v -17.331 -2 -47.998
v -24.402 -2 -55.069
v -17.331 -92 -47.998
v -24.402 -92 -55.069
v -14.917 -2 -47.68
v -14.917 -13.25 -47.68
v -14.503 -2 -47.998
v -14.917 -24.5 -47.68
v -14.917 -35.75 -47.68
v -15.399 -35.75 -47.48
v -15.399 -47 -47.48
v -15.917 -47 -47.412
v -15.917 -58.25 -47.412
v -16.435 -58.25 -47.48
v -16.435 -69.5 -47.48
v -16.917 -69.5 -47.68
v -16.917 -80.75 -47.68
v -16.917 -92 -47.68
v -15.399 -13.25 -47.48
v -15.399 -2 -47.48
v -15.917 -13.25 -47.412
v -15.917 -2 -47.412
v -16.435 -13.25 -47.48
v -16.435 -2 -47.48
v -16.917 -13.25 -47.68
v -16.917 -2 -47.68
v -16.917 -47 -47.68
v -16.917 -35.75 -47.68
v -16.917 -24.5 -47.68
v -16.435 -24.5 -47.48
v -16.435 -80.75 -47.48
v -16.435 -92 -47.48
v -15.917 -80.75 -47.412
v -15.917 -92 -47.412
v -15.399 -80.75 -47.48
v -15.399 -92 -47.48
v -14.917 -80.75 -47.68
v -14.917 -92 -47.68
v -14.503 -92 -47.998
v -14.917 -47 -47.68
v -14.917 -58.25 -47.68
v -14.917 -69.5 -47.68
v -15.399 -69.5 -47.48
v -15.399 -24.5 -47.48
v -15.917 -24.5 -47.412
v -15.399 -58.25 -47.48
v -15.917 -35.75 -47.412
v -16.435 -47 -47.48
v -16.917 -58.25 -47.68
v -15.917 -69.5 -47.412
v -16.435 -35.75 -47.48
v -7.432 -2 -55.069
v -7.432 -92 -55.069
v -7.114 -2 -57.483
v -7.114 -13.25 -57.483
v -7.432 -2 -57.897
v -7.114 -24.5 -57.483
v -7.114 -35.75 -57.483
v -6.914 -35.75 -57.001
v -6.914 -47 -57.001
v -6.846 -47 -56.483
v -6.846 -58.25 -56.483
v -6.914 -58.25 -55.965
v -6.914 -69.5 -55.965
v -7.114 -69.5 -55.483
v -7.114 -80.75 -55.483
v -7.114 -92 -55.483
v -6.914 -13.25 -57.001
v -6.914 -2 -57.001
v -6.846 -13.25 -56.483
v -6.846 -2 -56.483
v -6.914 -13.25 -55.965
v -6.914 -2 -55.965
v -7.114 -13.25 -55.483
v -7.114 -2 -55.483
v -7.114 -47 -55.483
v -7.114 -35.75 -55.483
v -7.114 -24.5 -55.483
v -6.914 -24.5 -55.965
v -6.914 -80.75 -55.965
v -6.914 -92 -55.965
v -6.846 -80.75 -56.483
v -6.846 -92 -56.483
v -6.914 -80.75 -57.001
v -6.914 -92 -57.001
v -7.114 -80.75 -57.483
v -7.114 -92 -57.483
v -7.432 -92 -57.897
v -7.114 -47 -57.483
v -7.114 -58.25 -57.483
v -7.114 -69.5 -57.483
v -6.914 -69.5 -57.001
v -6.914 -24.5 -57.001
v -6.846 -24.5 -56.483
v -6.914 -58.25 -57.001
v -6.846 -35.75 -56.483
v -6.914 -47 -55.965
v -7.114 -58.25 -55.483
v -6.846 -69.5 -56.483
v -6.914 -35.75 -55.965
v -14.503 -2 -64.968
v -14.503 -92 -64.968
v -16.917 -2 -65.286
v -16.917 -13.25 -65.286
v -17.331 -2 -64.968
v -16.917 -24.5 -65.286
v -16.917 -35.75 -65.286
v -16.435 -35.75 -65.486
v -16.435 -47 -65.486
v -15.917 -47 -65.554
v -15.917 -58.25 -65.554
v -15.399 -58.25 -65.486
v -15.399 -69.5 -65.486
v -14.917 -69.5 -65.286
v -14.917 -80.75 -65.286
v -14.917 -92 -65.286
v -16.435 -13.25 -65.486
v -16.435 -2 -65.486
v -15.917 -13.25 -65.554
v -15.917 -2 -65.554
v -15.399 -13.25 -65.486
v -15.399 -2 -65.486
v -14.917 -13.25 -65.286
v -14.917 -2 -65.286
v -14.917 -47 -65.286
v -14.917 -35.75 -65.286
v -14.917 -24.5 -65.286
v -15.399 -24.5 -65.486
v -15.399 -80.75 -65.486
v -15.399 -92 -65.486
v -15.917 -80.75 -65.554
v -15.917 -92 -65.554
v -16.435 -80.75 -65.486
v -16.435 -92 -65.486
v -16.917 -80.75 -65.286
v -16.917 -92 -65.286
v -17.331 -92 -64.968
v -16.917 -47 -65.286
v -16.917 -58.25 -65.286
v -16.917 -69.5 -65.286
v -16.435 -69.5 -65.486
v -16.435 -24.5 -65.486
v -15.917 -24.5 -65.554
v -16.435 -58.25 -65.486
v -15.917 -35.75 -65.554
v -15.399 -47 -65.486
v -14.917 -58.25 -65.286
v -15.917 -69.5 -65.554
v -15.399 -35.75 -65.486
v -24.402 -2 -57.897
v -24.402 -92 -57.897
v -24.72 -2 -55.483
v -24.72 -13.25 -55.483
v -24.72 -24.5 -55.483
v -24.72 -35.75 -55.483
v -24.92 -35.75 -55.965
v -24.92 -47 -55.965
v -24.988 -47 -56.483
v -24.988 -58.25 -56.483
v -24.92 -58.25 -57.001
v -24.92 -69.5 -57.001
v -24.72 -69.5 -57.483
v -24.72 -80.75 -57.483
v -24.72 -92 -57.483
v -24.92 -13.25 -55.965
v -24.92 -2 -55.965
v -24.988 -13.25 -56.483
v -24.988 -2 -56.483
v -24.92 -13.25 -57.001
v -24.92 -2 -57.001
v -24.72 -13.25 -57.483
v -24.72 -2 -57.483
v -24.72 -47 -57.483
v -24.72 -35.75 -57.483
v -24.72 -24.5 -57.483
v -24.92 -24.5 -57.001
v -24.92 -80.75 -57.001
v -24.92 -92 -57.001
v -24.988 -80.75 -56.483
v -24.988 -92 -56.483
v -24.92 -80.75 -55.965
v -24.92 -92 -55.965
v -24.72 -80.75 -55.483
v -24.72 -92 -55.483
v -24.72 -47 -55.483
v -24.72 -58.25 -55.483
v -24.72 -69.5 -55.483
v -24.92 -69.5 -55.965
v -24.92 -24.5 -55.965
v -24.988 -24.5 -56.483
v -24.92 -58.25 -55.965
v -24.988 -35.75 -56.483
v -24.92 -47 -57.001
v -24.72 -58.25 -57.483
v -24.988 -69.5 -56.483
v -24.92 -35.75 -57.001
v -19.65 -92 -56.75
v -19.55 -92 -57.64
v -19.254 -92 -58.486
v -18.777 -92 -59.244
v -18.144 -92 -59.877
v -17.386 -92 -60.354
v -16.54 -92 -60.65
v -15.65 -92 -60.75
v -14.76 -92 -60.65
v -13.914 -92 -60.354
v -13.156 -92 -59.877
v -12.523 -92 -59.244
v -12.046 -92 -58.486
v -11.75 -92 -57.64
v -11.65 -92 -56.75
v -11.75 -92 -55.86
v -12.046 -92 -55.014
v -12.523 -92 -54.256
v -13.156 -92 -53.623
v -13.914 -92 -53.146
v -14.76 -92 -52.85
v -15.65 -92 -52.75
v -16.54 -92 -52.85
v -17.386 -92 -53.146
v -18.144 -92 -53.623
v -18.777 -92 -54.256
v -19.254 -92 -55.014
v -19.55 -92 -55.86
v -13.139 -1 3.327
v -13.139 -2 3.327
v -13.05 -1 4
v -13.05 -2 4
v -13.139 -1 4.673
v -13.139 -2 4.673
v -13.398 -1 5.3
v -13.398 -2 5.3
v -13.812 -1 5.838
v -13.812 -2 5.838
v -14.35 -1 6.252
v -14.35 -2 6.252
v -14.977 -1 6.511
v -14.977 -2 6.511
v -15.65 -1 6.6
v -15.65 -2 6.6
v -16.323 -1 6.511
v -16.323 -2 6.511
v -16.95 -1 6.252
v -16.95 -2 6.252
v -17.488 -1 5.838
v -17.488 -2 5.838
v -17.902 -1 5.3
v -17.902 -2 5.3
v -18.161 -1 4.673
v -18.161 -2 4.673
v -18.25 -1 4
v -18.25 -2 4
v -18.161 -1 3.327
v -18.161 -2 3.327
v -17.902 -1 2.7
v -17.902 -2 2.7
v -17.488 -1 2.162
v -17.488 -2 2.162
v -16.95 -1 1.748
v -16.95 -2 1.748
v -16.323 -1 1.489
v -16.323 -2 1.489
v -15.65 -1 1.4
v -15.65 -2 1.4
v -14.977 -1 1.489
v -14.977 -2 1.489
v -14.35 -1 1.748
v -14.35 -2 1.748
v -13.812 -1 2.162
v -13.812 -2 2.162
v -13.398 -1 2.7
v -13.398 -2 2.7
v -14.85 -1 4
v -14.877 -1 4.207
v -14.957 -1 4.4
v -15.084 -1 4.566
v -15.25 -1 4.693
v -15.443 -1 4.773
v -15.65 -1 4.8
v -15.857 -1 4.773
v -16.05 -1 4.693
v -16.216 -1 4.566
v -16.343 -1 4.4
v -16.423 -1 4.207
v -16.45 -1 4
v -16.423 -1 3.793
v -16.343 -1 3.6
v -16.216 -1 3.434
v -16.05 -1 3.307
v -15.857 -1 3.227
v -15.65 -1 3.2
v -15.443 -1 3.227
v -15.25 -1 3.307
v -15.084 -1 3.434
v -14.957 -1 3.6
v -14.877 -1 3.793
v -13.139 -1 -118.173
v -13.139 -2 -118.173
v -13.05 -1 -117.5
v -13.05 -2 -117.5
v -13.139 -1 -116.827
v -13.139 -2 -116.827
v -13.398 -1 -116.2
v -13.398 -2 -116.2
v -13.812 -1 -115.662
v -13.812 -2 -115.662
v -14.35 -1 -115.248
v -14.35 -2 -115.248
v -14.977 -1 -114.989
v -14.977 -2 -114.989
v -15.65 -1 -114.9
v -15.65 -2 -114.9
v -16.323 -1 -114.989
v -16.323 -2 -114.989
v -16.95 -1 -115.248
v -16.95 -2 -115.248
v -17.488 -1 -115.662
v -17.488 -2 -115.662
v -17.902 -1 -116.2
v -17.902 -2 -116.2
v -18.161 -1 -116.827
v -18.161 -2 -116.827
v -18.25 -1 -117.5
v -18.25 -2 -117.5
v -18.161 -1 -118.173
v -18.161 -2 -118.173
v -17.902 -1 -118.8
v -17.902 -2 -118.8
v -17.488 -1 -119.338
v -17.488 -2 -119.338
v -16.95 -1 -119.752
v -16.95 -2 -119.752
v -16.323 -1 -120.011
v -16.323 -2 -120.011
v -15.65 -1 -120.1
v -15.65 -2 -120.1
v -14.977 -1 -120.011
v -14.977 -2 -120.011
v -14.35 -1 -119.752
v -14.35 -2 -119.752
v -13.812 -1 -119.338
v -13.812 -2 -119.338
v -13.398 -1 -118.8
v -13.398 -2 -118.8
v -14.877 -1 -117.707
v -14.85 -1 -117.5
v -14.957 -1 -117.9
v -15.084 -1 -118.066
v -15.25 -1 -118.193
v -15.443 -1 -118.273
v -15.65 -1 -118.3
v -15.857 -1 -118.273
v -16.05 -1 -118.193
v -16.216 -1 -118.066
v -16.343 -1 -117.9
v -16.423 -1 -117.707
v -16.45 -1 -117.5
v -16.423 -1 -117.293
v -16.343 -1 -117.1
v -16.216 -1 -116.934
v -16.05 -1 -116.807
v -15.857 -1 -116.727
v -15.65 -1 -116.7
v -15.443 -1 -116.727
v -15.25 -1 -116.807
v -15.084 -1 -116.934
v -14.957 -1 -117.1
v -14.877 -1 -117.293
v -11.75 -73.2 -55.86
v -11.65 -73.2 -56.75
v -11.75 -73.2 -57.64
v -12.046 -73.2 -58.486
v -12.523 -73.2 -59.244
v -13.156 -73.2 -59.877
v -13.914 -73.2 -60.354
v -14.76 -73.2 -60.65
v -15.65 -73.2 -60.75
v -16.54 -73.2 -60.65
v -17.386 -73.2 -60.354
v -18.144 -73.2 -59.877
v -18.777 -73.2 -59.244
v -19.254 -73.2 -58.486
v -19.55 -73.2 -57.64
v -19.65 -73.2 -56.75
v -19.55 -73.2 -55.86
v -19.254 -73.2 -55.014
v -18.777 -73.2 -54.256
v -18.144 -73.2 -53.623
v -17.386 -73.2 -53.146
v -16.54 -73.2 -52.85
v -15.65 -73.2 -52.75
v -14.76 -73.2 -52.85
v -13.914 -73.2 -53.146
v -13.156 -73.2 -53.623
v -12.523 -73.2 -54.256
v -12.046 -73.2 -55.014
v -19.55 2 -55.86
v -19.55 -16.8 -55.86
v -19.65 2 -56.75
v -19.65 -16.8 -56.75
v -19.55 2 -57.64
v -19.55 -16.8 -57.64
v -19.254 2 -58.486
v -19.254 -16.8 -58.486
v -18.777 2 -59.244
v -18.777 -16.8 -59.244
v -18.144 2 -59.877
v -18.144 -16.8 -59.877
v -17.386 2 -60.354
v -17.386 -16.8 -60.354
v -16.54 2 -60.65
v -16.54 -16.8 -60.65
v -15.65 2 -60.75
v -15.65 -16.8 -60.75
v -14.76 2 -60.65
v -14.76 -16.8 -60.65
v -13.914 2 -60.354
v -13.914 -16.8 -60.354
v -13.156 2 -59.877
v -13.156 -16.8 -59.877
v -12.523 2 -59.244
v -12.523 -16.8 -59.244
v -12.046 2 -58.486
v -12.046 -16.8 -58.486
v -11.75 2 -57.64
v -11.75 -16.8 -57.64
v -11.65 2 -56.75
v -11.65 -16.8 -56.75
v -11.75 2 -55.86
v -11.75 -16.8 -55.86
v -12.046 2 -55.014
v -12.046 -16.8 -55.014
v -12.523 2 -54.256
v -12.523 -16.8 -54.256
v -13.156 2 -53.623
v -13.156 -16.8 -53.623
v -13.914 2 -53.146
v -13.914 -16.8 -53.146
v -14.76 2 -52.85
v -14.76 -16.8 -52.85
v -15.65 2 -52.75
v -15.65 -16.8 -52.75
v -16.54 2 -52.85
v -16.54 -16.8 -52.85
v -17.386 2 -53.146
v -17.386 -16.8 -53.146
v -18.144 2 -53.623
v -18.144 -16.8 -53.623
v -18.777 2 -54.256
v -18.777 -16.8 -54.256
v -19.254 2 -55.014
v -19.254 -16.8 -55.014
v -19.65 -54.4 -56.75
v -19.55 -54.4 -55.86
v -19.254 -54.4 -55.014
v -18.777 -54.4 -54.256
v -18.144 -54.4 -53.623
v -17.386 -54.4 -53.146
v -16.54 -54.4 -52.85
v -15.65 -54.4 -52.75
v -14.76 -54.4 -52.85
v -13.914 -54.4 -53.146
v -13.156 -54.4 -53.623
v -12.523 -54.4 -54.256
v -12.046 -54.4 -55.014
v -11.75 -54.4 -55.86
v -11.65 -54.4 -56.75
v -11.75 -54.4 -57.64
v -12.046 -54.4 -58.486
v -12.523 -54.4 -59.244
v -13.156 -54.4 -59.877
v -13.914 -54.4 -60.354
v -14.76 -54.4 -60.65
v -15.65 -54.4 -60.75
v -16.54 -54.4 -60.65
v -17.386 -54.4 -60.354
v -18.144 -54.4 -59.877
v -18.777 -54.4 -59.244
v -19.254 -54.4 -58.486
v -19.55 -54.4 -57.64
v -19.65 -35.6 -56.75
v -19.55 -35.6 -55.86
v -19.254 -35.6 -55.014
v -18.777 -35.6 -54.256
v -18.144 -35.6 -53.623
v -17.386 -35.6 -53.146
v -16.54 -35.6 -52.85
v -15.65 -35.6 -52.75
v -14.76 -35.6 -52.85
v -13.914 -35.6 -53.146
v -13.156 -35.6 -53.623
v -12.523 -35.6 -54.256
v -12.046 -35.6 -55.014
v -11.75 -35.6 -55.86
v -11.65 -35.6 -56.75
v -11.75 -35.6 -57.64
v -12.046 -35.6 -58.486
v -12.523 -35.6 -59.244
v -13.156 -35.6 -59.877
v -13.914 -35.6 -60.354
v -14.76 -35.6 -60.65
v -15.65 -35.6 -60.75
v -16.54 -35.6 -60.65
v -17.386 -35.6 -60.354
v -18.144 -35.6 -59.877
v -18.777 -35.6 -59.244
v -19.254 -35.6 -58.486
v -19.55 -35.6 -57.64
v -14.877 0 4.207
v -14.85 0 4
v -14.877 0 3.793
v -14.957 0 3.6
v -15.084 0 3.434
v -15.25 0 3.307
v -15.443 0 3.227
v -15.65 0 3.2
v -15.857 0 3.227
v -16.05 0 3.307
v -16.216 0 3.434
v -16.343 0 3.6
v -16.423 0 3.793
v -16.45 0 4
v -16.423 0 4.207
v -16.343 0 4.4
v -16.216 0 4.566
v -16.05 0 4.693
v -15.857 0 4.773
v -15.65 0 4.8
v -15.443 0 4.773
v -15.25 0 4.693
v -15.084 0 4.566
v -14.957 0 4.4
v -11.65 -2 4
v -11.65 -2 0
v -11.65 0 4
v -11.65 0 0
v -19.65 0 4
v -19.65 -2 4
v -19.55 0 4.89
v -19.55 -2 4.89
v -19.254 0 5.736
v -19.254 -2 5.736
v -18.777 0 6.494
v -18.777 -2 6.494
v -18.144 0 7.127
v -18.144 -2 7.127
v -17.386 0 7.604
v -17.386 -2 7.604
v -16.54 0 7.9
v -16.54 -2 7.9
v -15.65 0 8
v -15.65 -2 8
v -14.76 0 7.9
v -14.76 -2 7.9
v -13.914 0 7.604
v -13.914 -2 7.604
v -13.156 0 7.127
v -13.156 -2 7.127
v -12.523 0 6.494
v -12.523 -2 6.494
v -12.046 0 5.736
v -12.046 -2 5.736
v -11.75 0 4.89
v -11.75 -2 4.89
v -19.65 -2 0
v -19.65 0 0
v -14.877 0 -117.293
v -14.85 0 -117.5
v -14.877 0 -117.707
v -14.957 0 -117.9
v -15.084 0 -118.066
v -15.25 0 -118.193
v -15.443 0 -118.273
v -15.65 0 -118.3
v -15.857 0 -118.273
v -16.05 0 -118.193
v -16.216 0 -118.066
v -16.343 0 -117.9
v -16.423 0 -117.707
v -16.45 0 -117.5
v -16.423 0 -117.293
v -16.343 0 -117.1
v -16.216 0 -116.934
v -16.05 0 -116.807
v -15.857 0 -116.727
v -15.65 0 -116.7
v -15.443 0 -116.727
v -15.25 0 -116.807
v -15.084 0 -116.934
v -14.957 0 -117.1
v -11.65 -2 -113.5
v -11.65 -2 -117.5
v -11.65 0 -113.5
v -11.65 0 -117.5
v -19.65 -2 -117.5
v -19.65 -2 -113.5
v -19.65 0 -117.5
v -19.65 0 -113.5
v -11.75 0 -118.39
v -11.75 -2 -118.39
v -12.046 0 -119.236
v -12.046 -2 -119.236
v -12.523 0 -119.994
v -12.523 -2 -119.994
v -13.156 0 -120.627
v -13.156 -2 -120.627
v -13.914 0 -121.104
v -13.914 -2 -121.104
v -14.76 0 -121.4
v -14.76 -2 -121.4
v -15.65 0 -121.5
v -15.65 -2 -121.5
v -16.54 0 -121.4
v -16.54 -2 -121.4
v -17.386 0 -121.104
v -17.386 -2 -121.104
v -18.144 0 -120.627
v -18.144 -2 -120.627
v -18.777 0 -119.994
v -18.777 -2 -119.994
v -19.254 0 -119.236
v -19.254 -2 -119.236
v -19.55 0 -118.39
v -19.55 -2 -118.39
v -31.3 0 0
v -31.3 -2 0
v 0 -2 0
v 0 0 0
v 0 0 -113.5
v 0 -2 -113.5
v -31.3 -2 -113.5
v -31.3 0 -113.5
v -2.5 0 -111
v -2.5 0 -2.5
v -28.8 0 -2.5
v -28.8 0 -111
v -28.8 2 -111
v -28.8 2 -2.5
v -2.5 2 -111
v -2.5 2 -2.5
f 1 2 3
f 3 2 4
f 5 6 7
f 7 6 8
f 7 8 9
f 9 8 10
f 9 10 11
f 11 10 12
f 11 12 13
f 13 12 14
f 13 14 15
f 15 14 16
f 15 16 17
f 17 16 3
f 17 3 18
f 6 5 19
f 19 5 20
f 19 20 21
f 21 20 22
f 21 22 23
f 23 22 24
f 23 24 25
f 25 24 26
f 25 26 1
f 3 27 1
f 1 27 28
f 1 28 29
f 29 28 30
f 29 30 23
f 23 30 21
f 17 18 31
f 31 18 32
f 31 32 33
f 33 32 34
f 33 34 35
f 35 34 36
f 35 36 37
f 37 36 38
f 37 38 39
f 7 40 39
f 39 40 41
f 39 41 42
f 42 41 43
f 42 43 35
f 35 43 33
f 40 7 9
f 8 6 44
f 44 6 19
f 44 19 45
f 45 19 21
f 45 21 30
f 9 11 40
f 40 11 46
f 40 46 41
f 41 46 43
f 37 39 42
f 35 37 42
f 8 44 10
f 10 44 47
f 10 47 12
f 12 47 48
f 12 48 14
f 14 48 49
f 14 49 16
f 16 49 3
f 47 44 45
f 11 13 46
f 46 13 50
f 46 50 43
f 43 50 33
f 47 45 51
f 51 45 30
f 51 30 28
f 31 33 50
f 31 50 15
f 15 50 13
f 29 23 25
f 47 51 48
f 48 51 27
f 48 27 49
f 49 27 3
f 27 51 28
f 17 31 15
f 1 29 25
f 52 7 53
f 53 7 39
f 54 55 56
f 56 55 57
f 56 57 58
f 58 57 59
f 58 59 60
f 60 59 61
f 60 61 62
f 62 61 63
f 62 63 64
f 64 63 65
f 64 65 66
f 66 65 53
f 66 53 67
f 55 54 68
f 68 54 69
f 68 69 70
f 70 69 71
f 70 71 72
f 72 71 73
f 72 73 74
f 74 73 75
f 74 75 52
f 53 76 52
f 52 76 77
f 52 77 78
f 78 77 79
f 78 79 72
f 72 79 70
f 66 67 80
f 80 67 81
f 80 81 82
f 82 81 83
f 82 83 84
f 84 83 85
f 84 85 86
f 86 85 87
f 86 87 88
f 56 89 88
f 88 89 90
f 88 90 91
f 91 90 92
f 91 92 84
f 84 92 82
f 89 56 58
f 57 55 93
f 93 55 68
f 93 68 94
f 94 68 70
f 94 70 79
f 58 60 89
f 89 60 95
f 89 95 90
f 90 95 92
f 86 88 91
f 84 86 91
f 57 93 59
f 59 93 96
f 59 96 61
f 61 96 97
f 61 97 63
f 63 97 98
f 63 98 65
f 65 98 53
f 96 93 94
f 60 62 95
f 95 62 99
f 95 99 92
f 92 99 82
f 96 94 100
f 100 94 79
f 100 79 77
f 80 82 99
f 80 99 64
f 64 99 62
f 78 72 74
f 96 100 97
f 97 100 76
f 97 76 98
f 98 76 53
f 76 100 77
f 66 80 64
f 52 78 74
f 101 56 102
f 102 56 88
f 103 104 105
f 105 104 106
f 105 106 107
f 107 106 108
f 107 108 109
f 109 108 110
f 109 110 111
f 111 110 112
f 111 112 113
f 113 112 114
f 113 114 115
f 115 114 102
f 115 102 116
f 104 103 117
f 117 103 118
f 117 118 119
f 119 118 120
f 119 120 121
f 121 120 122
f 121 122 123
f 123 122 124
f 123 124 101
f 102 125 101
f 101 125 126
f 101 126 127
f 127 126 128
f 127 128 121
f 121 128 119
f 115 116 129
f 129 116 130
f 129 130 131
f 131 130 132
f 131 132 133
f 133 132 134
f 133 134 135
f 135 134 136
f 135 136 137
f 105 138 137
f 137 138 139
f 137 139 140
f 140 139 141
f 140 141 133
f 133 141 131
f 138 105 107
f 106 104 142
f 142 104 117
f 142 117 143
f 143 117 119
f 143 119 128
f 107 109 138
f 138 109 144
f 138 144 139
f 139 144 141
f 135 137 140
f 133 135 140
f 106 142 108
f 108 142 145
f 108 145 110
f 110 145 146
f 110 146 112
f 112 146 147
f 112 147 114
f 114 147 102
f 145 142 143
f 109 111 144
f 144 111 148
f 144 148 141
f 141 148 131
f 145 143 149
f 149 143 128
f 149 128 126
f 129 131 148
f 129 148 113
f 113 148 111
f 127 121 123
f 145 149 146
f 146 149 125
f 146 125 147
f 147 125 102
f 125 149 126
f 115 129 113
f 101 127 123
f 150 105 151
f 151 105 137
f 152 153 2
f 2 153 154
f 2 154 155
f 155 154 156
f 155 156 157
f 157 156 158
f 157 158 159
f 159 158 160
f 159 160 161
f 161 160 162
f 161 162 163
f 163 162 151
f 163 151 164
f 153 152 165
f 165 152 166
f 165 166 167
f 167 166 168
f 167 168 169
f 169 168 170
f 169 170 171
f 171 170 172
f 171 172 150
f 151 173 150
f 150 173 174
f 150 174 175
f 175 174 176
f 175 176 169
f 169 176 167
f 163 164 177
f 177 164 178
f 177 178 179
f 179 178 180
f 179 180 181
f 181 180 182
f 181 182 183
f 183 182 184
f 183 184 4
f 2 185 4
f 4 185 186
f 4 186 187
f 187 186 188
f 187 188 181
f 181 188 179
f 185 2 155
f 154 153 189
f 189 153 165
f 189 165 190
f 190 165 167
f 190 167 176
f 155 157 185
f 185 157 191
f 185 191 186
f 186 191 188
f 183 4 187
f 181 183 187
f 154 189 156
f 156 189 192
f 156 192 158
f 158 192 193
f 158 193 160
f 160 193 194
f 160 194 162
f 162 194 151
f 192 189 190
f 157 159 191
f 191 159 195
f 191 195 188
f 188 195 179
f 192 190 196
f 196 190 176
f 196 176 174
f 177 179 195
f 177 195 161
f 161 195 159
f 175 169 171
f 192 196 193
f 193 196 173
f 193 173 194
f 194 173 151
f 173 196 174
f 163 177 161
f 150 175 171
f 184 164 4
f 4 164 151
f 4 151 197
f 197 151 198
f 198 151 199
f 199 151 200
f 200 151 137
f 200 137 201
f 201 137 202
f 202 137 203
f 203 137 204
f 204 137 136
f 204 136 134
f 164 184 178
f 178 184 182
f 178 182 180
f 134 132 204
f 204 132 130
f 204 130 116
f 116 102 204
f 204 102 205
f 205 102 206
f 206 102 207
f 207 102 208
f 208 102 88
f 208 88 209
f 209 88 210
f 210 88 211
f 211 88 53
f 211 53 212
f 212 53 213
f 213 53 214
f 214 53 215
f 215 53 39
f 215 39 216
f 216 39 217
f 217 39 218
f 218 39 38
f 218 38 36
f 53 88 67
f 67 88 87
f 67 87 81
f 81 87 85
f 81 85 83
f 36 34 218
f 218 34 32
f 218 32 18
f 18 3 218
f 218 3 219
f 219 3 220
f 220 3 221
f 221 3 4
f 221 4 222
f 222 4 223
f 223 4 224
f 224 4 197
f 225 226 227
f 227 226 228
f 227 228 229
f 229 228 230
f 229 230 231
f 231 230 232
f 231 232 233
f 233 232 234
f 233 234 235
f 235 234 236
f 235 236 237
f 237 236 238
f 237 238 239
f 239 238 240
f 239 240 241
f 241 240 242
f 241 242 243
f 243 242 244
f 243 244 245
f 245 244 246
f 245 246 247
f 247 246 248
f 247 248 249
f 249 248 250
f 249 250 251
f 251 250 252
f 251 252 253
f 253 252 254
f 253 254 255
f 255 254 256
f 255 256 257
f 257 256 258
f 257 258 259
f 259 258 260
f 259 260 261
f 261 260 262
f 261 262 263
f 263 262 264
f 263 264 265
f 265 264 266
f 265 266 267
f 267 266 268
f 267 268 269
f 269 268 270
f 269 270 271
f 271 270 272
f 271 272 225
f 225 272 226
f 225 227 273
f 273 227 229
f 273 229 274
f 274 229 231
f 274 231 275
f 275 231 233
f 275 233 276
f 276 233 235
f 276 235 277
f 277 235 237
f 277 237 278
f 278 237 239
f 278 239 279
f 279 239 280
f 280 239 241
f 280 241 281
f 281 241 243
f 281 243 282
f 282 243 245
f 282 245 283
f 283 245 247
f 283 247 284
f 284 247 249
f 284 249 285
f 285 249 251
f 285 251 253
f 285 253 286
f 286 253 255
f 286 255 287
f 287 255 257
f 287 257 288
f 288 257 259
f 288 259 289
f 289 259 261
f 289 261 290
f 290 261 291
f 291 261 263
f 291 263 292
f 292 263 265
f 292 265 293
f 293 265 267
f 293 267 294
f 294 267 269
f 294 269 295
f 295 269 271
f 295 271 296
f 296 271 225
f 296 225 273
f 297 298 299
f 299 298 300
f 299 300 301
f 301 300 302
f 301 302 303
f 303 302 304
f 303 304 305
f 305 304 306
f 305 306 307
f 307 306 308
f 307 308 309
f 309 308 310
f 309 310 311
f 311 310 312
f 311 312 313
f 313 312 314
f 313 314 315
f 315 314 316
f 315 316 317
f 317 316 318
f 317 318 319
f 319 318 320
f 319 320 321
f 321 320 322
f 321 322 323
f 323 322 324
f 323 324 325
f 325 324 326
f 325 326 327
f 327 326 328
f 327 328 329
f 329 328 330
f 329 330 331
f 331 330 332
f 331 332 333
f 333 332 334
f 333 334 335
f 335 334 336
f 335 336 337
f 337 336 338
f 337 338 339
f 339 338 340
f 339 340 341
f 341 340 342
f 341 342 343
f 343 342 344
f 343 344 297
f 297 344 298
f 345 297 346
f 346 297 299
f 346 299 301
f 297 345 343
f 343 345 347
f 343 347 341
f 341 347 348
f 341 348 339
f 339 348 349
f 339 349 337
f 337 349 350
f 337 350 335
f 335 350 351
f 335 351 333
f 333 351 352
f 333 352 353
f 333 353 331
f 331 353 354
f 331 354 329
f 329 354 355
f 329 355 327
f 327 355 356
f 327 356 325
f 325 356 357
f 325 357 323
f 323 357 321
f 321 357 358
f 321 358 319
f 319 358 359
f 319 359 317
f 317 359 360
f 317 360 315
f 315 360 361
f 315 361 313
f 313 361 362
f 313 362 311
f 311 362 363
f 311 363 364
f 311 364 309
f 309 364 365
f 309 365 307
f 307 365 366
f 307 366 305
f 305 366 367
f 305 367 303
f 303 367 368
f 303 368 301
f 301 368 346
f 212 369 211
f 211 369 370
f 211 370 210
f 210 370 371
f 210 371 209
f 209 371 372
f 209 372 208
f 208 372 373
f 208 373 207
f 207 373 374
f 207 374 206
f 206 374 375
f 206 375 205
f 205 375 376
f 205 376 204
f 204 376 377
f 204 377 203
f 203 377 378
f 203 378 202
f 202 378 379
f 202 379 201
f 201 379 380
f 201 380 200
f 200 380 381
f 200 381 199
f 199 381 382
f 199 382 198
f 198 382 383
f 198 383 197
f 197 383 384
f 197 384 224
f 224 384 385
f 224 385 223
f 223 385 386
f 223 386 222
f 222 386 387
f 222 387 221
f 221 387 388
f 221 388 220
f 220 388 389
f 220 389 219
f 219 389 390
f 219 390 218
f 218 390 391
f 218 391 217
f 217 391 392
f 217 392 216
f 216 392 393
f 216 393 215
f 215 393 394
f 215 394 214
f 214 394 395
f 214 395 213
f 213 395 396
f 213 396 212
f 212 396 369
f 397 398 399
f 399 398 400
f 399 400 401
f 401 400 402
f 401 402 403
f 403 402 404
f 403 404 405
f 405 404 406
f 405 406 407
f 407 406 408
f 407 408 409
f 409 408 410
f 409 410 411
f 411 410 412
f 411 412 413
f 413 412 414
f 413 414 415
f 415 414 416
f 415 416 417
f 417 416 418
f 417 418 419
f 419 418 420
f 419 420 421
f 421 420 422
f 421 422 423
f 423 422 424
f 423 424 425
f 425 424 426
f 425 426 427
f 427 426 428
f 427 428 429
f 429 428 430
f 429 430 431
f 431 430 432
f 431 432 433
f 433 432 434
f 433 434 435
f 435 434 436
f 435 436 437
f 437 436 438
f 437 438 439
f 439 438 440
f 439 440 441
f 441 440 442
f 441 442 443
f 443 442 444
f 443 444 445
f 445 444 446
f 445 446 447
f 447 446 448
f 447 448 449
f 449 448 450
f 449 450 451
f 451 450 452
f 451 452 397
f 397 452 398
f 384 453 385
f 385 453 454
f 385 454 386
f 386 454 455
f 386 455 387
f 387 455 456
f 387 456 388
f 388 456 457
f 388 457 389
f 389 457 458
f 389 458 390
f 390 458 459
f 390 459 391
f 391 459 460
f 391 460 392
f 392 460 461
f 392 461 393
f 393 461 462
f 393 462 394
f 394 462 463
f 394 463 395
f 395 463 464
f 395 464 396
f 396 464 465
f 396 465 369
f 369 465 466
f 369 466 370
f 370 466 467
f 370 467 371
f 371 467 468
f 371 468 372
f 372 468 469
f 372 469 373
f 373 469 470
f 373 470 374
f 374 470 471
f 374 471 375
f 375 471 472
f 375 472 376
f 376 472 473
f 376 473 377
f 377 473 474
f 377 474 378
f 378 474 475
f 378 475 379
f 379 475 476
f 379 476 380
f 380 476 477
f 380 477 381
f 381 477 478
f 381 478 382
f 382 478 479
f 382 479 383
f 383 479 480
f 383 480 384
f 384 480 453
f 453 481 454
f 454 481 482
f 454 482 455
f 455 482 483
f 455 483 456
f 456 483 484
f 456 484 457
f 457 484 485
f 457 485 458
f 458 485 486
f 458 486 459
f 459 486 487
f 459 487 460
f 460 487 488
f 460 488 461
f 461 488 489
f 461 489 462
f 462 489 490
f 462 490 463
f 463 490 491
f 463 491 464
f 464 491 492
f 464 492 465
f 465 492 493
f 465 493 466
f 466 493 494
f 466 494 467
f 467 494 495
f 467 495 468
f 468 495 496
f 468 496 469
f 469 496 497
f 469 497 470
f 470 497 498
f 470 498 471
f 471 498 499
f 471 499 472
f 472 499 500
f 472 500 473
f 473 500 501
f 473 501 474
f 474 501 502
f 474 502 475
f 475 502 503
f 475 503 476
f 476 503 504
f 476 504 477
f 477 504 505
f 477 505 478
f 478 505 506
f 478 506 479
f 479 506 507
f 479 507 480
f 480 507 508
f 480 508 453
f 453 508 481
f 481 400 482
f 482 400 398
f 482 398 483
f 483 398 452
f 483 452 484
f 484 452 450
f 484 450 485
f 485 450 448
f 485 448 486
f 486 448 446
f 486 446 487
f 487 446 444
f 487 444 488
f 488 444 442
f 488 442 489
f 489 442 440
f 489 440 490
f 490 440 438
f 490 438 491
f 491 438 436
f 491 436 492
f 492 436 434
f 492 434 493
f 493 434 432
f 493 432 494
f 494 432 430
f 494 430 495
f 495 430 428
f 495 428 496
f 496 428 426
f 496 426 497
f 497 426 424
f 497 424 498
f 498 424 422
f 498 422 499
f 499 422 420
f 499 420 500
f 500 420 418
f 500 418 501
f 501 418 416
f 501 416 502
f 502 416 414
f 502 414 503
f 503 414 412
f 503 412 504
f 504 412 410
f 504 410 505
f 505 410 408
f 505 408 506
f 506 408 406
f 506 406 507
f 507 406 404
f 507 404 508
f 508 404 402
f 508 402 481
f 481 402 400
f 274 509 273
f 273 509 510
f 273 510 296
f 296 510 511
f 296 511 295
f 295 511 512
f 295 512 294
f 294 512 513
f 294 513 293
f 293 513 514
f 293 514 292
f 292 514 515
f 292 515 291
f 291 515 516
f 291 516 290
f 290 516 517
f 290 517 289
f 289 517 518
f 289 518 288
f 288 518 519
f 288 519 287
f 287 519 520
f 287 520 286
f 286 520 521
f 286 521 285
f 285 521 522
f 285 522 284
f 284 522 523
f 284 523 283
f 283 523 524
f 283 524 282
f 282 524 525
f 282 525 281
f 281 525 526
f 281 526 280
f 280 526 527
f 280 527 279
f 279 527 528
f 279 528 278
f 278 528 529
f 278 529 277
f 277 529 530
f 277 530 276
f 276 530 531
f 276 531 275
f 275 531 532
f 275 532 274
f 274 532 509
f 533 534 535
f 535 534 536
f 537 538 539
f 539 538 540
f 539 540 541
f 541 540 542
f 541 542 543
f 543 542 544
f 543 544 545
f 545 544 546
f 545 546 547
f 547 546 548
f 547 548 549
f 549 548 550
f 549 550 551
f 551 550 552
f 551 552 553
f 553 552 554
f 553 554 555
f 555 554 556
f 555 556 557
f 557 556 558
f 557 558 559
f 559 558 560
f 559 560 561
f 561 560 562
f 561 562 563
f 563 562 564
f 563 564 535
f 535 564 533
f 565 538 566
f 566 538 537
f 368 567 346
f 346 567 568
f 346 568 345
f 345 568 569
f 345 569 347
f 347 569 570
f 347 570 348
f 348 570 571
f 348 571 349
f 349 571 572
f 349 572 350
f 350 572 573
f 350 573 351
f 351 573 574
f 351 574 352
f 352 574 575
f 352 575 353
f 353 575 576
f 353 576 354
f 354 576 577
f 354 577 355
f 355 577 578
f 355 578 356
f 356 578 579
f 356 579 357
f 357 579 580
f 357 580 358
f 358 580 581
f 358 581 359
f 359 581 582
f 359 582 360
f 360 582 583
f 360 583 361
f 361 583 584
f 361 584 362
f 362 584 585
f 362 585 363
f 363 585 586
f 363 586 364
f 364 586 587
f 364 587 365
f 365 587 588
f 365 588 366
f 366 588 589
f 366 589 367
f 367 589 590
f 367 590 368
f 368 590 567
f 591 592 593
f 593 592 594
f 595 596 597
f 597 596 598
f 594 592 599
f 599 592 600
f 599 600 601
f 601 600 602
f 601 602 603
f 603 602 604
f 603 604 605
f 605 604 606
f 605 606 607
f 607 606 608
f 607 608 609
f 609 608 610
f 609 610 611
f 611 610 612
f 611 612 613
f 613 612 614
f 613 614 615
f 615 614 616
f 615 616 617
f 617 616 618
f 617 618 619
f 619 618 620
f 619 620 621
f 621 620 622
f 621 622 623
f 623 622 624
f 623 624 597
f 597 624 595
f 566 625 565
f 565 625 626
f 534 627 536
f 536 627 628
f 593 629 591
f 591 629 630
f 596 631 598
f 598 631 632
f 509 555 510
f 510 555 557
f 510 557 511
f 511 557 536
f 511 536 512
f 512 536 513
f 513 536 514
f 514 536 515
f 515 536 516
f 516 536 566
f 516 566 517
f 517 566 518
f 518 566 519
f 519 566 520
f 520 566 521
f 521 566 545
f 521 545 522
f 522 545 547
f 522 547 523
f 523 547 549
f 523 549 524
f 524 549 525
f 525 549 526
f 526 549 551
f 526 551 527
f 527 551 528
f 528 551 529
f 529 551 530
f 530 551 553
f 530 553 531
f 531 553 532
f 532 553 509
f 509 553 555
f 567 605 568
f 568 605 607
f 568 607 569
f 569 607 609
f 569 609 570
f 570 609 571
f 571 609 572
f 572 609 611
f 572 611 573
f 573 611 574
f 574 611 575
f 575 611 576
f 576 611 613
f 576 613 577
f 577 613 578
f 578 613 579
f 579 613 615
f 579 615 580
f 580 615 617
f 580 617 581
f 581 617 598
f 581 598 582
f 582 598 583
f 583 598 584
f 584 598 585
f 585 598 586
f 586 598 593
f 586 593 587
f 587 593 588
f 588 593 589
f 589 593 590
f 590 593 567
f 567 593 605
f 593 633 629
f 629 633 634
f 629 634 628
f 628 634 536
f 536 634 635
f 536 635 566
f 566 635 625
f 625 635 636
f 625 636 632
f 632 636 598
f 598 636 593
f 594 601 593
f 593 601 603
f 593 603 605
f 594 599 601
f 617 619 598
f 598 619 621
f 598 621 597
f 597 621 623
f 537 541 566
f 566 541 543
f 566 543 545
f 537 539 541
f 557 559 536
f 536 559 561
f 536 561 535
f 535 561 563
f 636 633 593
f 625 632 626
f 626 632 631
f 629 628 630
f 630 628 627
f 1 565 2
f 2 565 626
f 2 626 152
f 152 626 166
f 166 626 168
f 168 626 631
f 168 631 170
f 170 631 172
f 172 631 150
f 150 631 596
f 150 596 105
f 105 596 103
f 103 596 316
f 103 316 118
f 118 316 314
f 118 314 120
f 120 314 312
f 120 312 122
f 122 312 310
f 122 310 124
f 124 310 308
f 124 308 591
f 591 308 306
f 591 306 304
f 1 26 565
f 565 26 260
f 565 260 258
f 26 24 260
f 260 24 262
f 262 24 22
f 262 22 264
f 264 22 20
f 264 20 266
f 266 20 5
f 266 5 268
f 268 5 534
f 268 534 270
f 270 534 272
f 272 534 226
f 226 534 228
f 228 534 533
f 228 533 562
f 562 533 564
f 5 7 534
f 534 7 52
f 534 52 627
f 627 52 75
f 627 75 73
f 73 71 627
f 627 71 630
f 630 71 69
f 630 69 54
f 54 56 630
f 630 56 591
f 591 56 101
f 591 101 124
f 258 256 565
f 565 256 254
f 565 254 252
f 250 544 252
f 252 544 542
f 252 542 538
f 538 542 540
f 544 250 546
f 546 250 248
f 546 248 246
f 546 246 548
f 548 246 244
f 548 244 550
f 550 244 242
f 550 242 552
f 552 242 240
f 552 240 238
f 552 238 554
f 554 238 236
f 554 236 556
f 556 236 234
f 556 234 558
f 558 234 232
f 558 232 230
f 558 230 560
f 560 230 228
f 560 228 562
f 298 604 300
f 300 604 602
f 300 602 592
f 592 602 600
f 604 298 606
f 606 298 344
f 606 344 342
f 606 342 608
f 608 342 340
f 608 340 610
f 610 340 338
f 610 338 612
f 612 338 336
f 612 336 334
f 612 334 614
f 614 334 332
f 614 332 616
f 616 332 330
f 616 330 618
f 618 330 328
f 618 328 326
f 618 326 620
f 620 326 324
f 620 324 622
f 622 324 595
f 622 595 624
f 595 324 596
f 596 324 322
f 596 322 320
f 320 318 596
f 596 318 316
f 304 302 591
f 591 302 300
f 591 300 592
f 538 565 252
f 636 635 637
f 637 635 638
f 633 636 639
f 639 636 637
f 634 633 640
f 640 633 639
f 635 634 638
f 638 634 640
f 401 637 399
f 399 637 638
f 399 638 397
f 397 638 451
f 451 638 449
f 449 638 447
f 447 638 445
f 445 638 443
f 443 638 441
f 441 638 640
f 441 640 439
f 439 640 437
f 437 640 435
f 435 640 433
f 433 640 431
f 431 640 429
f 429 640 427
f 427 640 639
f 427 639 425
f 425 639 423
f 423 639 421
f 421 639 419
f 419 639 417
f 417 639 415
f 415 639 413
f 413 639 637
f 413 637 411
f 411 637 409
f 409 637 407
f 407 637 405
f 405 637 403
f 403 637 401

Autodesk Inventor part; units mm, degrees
ref_plane "YZ Plane" through (0, 0, 0) normal (1, 0, 0) x (0, 1, 0)
ref_plane "XZ Plane" through (0, 0, 0) normal (0, 1, 0) x (-1, 0, 0)
ref_plane "XY Plane" through (0, 0, 0) normal (0, 0, 1) x (1, 0, 0)
sketch "Esboço1" plane through (0, 0, 0) normal (0, 1, 0) x (-1, 0, 0)
  line L0 (0, 0) -> (31.3, 0)
  line L1 (31.3, 0) -> (31.3, -113.5)
  line L2 (31.3, -113.5) -> (0, -113.5)
  line L3 (0, -113.5) -> (0, 0)
  line L4 (28.8, -111) -> (28.8, -2.5)
  line L5 (28.8, -2.5) -> (2.5, -2.5)
  line L6 (2.5, -2.5) -> (2.5, -111)
  line L7 (2.5, -111) -> (28.8, -111)
  dimension "d0" = 31.3
  dimension "d1" = 113.5
  dimension "d2" = 2.5
extrude "Extrusão1" add sketch "Esboço1" along normal blind 2 contours L7 L6 L5 L4
extrude "Extrusão2" add sketch "Esboço1" against normal blind 2 contours L0 L1 L2 L3 | L7 L6 L5 L4
sketch "Esboço2" plane through (0, -2, 0) normal (0, -1, 0) x (1, 0, 0)
  line L0 (0, -113.5) -> (0, 0) projected
  line L1 (-15.65, 0) -> (-11.65, 0)
  line L2 (-11.65, 0) -> (-11.65, 4)
  line L3 (-19.65, 0) -> (-15.65, 0)
  line L4 (-28.8, -2.5) -> (-2.5, -2.5) projected
  circle A0 centre (-15.65, 4) radius 0.8
  line L5 (0, 0) -> (0, -113.5) projected
  line L6 (-19.65, 0) -> (-19.65, 4)
  arc A1 (-11.65, 4) -> (-19.65, 4) centre (-15.65, 4) ccw
  line L7 (-31.3, -113.5) -> (-31.3, 0) projected
  line L8 (-15.65, -113.5) -> (-11.65, -113.5)
  line L9 (-11.65, -113.5) -> (-11.65, -117.5)
  line L10 (-19.65, -113.5) -> (-15.65, -113.5)
  circle A2 centre (-15.65, -117.5) radius 0.8
  line L11 (-19.65, -113.5) -> (-19.65, -117.5)
  arc A3 (-19.65, -117.5) -> (-11.65, -117.5) centre (-15.65, -117.5) ccw
  dimension "d16" = 1.6
  dimension "d28" = 0
extrude "Extrusão3" add sketch "Esboço2" against normal blind 2
sketch "Esboço3" plane through (0, -2, 0) normal (0, -1, 0) x (1, 0, 0)
  circle A0 centre (-15.65, -56.75) radius 4
  line L0 (0, -113.5) -> (0, 0) projected
  line L1 (-31.3, 0) -> (-31.3, -113.5) projected
  line L2 (0, -113.5) -> (-31.3, -113.5) projected
  dimension "d18" = 8
  dimension "d21" = 15.65
  dimension "d33" = 56.75
extrude "Extrusão4" cut sketch "Esboço3" against normal up to surface (4 mm away)
sketch "Esboço4" plane through (0, -2, 0) normal (0, -1, 0) x (1, 0, 0)
  circle A0 centre (-15.65, 4) radius 0.8 projected
  circle A1 centre (-15.65, 4) radius 2.6
  line L0 (0, -113.5) -> (0, 0) projected
  circle A2 centre (-15.65, -117.5) radius 2.6
  dimension "d29" = 5.2
extrude "Extrusão5" cut sketch "Esboço4" against normal blind 1
sketch "Esboço5" plane through (0, -2, 0) normal (0, -1, 0) x (1, 0, 0)
  point P0 (0, 0)
sketch "Esboço6" plane through (0, -2, 0) normal (0, -1, 0) x (1, 0, 0)
  line L0 (-17.3312, -47.9978) -> (-24.4022, -55.0688)
  line L1 (-24.4022, -57.8973) -> (-17.3312, -64.9683)
  line L2 (-14.5027, -64.9683) -> (-7.4317, -57.8973)
  line L3 (-7.4317, -55.0688) -> (-14.5027, -47.9978)
  circle A0 centre (-15.65, -56.75) radius 4 projected
  line L4 (-15.917, -46.5835) -> (-15.917, -66.3825) construction
  line L5 (-25.8165, -56.483) -> (-6.0175, -56.483) construction
  arc A1 (-24.4022, -55.0688) -> (-24.4022, -57.8973) centre (-22.988, -56.483) ccw
  arc A2 (-17.3312, -64.9683) -> (-14.5027, -64.9683) centre (-15.917, -63.5541) ccw
  arc A3 (-7.4317, -57.8973) -> (-7.4317, -55.0688) centre (-8.8459, -56.483) ccw
  arc A4 (-14.5027, -47.9978) -> (-17.3312, -47.9978) centre (-15.917, -49.412) ccw
  point P0 (0, 0)
  dimension "d34" = 14
  dimension "d35" = 2
  dimension "d38" = 14
extrude "Extrusão6" add sketch "Esboço6" along normal blind 90
properties part number "Tampa Suporte 4E_3DPrint"
